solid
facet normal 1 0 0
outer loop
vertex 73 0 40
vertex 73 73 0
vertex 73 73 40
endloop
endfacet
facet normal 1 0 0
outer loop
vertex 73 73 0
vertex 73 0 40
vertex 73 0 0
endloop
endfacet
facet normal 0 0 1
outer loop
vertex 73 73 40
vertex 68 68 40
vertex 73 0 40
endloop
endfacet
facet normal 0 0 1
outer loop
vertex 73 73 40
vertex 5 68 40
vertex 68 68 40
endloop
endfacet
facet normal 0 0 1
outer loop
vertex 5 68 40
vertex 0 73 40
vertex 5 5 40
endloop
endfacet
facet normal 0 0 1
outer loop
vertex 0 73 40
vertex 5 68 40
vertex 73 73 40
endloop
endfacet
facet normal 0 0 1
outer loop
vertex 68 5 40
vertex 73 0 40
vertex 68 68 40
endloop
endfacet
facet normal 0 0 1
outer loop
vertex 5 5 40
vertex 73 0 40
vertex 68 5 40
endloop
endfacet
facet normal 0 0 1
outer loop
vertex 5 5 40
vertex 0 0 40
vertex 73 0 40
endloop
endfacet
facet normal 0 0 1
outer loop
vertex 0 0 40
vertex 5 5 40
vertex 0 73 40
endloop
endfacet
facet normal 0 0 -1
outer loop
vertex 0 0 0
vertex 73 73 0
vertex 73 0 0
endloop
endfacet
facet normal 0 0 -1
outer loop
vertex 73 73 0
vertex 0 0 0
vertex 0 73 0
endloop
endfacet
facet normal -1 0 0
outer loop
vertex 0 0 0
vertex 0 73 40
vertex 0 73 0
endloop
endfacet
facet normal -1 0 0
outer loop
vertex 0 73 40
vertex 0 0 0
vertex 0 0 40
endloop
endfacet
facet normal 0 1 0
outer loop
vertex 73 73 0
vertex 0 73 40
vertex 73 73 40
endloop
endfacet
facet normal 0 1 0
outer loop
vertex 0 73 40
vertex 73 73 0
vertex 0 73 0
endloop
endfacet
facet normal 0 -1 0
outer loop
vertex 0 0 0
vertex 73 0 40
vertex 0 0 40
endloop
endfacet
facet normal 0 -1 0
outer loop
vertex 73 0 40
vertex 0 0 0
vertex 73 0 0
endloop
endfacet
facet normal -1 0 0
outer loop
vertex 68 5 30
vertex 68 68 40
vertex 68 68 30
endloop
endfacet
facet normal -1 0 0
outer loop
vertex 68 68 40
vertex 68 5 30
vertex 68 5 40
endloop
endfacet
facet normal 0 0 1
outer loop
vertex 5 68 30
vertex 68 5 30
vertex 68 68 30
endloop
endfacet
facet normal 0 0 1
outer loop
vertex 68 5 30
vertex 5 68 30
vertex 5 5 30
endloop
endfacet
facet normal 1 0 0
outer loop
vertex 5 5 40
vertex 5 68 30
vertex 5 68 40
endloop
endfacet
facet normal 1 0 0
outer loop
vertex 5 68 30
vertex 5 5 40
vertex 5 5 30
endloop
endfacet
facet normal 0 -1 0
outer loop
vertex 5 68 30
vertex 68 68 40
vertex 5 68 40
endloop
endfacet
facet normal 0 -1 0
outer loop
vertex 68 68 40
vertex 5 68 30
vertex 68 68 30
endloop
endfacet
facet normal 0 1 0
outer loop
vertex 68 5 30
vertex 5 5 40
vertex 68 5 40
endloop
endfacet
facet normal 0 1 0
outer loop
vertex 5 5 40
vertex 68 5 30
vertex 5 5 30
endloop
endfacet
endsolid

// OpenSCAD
inner_width = 63;
inner_depth = 63;
inner_height = 30;
rim = 5;

difference()
{
    cube([rim+ inner_width + rim, rim + inner_depth + rim, rim + rim + inner_height]);
    translate([rim, rim, inner_height])
    {
        cube([inner_width, inner_depth, inner_height]);
    }
}
